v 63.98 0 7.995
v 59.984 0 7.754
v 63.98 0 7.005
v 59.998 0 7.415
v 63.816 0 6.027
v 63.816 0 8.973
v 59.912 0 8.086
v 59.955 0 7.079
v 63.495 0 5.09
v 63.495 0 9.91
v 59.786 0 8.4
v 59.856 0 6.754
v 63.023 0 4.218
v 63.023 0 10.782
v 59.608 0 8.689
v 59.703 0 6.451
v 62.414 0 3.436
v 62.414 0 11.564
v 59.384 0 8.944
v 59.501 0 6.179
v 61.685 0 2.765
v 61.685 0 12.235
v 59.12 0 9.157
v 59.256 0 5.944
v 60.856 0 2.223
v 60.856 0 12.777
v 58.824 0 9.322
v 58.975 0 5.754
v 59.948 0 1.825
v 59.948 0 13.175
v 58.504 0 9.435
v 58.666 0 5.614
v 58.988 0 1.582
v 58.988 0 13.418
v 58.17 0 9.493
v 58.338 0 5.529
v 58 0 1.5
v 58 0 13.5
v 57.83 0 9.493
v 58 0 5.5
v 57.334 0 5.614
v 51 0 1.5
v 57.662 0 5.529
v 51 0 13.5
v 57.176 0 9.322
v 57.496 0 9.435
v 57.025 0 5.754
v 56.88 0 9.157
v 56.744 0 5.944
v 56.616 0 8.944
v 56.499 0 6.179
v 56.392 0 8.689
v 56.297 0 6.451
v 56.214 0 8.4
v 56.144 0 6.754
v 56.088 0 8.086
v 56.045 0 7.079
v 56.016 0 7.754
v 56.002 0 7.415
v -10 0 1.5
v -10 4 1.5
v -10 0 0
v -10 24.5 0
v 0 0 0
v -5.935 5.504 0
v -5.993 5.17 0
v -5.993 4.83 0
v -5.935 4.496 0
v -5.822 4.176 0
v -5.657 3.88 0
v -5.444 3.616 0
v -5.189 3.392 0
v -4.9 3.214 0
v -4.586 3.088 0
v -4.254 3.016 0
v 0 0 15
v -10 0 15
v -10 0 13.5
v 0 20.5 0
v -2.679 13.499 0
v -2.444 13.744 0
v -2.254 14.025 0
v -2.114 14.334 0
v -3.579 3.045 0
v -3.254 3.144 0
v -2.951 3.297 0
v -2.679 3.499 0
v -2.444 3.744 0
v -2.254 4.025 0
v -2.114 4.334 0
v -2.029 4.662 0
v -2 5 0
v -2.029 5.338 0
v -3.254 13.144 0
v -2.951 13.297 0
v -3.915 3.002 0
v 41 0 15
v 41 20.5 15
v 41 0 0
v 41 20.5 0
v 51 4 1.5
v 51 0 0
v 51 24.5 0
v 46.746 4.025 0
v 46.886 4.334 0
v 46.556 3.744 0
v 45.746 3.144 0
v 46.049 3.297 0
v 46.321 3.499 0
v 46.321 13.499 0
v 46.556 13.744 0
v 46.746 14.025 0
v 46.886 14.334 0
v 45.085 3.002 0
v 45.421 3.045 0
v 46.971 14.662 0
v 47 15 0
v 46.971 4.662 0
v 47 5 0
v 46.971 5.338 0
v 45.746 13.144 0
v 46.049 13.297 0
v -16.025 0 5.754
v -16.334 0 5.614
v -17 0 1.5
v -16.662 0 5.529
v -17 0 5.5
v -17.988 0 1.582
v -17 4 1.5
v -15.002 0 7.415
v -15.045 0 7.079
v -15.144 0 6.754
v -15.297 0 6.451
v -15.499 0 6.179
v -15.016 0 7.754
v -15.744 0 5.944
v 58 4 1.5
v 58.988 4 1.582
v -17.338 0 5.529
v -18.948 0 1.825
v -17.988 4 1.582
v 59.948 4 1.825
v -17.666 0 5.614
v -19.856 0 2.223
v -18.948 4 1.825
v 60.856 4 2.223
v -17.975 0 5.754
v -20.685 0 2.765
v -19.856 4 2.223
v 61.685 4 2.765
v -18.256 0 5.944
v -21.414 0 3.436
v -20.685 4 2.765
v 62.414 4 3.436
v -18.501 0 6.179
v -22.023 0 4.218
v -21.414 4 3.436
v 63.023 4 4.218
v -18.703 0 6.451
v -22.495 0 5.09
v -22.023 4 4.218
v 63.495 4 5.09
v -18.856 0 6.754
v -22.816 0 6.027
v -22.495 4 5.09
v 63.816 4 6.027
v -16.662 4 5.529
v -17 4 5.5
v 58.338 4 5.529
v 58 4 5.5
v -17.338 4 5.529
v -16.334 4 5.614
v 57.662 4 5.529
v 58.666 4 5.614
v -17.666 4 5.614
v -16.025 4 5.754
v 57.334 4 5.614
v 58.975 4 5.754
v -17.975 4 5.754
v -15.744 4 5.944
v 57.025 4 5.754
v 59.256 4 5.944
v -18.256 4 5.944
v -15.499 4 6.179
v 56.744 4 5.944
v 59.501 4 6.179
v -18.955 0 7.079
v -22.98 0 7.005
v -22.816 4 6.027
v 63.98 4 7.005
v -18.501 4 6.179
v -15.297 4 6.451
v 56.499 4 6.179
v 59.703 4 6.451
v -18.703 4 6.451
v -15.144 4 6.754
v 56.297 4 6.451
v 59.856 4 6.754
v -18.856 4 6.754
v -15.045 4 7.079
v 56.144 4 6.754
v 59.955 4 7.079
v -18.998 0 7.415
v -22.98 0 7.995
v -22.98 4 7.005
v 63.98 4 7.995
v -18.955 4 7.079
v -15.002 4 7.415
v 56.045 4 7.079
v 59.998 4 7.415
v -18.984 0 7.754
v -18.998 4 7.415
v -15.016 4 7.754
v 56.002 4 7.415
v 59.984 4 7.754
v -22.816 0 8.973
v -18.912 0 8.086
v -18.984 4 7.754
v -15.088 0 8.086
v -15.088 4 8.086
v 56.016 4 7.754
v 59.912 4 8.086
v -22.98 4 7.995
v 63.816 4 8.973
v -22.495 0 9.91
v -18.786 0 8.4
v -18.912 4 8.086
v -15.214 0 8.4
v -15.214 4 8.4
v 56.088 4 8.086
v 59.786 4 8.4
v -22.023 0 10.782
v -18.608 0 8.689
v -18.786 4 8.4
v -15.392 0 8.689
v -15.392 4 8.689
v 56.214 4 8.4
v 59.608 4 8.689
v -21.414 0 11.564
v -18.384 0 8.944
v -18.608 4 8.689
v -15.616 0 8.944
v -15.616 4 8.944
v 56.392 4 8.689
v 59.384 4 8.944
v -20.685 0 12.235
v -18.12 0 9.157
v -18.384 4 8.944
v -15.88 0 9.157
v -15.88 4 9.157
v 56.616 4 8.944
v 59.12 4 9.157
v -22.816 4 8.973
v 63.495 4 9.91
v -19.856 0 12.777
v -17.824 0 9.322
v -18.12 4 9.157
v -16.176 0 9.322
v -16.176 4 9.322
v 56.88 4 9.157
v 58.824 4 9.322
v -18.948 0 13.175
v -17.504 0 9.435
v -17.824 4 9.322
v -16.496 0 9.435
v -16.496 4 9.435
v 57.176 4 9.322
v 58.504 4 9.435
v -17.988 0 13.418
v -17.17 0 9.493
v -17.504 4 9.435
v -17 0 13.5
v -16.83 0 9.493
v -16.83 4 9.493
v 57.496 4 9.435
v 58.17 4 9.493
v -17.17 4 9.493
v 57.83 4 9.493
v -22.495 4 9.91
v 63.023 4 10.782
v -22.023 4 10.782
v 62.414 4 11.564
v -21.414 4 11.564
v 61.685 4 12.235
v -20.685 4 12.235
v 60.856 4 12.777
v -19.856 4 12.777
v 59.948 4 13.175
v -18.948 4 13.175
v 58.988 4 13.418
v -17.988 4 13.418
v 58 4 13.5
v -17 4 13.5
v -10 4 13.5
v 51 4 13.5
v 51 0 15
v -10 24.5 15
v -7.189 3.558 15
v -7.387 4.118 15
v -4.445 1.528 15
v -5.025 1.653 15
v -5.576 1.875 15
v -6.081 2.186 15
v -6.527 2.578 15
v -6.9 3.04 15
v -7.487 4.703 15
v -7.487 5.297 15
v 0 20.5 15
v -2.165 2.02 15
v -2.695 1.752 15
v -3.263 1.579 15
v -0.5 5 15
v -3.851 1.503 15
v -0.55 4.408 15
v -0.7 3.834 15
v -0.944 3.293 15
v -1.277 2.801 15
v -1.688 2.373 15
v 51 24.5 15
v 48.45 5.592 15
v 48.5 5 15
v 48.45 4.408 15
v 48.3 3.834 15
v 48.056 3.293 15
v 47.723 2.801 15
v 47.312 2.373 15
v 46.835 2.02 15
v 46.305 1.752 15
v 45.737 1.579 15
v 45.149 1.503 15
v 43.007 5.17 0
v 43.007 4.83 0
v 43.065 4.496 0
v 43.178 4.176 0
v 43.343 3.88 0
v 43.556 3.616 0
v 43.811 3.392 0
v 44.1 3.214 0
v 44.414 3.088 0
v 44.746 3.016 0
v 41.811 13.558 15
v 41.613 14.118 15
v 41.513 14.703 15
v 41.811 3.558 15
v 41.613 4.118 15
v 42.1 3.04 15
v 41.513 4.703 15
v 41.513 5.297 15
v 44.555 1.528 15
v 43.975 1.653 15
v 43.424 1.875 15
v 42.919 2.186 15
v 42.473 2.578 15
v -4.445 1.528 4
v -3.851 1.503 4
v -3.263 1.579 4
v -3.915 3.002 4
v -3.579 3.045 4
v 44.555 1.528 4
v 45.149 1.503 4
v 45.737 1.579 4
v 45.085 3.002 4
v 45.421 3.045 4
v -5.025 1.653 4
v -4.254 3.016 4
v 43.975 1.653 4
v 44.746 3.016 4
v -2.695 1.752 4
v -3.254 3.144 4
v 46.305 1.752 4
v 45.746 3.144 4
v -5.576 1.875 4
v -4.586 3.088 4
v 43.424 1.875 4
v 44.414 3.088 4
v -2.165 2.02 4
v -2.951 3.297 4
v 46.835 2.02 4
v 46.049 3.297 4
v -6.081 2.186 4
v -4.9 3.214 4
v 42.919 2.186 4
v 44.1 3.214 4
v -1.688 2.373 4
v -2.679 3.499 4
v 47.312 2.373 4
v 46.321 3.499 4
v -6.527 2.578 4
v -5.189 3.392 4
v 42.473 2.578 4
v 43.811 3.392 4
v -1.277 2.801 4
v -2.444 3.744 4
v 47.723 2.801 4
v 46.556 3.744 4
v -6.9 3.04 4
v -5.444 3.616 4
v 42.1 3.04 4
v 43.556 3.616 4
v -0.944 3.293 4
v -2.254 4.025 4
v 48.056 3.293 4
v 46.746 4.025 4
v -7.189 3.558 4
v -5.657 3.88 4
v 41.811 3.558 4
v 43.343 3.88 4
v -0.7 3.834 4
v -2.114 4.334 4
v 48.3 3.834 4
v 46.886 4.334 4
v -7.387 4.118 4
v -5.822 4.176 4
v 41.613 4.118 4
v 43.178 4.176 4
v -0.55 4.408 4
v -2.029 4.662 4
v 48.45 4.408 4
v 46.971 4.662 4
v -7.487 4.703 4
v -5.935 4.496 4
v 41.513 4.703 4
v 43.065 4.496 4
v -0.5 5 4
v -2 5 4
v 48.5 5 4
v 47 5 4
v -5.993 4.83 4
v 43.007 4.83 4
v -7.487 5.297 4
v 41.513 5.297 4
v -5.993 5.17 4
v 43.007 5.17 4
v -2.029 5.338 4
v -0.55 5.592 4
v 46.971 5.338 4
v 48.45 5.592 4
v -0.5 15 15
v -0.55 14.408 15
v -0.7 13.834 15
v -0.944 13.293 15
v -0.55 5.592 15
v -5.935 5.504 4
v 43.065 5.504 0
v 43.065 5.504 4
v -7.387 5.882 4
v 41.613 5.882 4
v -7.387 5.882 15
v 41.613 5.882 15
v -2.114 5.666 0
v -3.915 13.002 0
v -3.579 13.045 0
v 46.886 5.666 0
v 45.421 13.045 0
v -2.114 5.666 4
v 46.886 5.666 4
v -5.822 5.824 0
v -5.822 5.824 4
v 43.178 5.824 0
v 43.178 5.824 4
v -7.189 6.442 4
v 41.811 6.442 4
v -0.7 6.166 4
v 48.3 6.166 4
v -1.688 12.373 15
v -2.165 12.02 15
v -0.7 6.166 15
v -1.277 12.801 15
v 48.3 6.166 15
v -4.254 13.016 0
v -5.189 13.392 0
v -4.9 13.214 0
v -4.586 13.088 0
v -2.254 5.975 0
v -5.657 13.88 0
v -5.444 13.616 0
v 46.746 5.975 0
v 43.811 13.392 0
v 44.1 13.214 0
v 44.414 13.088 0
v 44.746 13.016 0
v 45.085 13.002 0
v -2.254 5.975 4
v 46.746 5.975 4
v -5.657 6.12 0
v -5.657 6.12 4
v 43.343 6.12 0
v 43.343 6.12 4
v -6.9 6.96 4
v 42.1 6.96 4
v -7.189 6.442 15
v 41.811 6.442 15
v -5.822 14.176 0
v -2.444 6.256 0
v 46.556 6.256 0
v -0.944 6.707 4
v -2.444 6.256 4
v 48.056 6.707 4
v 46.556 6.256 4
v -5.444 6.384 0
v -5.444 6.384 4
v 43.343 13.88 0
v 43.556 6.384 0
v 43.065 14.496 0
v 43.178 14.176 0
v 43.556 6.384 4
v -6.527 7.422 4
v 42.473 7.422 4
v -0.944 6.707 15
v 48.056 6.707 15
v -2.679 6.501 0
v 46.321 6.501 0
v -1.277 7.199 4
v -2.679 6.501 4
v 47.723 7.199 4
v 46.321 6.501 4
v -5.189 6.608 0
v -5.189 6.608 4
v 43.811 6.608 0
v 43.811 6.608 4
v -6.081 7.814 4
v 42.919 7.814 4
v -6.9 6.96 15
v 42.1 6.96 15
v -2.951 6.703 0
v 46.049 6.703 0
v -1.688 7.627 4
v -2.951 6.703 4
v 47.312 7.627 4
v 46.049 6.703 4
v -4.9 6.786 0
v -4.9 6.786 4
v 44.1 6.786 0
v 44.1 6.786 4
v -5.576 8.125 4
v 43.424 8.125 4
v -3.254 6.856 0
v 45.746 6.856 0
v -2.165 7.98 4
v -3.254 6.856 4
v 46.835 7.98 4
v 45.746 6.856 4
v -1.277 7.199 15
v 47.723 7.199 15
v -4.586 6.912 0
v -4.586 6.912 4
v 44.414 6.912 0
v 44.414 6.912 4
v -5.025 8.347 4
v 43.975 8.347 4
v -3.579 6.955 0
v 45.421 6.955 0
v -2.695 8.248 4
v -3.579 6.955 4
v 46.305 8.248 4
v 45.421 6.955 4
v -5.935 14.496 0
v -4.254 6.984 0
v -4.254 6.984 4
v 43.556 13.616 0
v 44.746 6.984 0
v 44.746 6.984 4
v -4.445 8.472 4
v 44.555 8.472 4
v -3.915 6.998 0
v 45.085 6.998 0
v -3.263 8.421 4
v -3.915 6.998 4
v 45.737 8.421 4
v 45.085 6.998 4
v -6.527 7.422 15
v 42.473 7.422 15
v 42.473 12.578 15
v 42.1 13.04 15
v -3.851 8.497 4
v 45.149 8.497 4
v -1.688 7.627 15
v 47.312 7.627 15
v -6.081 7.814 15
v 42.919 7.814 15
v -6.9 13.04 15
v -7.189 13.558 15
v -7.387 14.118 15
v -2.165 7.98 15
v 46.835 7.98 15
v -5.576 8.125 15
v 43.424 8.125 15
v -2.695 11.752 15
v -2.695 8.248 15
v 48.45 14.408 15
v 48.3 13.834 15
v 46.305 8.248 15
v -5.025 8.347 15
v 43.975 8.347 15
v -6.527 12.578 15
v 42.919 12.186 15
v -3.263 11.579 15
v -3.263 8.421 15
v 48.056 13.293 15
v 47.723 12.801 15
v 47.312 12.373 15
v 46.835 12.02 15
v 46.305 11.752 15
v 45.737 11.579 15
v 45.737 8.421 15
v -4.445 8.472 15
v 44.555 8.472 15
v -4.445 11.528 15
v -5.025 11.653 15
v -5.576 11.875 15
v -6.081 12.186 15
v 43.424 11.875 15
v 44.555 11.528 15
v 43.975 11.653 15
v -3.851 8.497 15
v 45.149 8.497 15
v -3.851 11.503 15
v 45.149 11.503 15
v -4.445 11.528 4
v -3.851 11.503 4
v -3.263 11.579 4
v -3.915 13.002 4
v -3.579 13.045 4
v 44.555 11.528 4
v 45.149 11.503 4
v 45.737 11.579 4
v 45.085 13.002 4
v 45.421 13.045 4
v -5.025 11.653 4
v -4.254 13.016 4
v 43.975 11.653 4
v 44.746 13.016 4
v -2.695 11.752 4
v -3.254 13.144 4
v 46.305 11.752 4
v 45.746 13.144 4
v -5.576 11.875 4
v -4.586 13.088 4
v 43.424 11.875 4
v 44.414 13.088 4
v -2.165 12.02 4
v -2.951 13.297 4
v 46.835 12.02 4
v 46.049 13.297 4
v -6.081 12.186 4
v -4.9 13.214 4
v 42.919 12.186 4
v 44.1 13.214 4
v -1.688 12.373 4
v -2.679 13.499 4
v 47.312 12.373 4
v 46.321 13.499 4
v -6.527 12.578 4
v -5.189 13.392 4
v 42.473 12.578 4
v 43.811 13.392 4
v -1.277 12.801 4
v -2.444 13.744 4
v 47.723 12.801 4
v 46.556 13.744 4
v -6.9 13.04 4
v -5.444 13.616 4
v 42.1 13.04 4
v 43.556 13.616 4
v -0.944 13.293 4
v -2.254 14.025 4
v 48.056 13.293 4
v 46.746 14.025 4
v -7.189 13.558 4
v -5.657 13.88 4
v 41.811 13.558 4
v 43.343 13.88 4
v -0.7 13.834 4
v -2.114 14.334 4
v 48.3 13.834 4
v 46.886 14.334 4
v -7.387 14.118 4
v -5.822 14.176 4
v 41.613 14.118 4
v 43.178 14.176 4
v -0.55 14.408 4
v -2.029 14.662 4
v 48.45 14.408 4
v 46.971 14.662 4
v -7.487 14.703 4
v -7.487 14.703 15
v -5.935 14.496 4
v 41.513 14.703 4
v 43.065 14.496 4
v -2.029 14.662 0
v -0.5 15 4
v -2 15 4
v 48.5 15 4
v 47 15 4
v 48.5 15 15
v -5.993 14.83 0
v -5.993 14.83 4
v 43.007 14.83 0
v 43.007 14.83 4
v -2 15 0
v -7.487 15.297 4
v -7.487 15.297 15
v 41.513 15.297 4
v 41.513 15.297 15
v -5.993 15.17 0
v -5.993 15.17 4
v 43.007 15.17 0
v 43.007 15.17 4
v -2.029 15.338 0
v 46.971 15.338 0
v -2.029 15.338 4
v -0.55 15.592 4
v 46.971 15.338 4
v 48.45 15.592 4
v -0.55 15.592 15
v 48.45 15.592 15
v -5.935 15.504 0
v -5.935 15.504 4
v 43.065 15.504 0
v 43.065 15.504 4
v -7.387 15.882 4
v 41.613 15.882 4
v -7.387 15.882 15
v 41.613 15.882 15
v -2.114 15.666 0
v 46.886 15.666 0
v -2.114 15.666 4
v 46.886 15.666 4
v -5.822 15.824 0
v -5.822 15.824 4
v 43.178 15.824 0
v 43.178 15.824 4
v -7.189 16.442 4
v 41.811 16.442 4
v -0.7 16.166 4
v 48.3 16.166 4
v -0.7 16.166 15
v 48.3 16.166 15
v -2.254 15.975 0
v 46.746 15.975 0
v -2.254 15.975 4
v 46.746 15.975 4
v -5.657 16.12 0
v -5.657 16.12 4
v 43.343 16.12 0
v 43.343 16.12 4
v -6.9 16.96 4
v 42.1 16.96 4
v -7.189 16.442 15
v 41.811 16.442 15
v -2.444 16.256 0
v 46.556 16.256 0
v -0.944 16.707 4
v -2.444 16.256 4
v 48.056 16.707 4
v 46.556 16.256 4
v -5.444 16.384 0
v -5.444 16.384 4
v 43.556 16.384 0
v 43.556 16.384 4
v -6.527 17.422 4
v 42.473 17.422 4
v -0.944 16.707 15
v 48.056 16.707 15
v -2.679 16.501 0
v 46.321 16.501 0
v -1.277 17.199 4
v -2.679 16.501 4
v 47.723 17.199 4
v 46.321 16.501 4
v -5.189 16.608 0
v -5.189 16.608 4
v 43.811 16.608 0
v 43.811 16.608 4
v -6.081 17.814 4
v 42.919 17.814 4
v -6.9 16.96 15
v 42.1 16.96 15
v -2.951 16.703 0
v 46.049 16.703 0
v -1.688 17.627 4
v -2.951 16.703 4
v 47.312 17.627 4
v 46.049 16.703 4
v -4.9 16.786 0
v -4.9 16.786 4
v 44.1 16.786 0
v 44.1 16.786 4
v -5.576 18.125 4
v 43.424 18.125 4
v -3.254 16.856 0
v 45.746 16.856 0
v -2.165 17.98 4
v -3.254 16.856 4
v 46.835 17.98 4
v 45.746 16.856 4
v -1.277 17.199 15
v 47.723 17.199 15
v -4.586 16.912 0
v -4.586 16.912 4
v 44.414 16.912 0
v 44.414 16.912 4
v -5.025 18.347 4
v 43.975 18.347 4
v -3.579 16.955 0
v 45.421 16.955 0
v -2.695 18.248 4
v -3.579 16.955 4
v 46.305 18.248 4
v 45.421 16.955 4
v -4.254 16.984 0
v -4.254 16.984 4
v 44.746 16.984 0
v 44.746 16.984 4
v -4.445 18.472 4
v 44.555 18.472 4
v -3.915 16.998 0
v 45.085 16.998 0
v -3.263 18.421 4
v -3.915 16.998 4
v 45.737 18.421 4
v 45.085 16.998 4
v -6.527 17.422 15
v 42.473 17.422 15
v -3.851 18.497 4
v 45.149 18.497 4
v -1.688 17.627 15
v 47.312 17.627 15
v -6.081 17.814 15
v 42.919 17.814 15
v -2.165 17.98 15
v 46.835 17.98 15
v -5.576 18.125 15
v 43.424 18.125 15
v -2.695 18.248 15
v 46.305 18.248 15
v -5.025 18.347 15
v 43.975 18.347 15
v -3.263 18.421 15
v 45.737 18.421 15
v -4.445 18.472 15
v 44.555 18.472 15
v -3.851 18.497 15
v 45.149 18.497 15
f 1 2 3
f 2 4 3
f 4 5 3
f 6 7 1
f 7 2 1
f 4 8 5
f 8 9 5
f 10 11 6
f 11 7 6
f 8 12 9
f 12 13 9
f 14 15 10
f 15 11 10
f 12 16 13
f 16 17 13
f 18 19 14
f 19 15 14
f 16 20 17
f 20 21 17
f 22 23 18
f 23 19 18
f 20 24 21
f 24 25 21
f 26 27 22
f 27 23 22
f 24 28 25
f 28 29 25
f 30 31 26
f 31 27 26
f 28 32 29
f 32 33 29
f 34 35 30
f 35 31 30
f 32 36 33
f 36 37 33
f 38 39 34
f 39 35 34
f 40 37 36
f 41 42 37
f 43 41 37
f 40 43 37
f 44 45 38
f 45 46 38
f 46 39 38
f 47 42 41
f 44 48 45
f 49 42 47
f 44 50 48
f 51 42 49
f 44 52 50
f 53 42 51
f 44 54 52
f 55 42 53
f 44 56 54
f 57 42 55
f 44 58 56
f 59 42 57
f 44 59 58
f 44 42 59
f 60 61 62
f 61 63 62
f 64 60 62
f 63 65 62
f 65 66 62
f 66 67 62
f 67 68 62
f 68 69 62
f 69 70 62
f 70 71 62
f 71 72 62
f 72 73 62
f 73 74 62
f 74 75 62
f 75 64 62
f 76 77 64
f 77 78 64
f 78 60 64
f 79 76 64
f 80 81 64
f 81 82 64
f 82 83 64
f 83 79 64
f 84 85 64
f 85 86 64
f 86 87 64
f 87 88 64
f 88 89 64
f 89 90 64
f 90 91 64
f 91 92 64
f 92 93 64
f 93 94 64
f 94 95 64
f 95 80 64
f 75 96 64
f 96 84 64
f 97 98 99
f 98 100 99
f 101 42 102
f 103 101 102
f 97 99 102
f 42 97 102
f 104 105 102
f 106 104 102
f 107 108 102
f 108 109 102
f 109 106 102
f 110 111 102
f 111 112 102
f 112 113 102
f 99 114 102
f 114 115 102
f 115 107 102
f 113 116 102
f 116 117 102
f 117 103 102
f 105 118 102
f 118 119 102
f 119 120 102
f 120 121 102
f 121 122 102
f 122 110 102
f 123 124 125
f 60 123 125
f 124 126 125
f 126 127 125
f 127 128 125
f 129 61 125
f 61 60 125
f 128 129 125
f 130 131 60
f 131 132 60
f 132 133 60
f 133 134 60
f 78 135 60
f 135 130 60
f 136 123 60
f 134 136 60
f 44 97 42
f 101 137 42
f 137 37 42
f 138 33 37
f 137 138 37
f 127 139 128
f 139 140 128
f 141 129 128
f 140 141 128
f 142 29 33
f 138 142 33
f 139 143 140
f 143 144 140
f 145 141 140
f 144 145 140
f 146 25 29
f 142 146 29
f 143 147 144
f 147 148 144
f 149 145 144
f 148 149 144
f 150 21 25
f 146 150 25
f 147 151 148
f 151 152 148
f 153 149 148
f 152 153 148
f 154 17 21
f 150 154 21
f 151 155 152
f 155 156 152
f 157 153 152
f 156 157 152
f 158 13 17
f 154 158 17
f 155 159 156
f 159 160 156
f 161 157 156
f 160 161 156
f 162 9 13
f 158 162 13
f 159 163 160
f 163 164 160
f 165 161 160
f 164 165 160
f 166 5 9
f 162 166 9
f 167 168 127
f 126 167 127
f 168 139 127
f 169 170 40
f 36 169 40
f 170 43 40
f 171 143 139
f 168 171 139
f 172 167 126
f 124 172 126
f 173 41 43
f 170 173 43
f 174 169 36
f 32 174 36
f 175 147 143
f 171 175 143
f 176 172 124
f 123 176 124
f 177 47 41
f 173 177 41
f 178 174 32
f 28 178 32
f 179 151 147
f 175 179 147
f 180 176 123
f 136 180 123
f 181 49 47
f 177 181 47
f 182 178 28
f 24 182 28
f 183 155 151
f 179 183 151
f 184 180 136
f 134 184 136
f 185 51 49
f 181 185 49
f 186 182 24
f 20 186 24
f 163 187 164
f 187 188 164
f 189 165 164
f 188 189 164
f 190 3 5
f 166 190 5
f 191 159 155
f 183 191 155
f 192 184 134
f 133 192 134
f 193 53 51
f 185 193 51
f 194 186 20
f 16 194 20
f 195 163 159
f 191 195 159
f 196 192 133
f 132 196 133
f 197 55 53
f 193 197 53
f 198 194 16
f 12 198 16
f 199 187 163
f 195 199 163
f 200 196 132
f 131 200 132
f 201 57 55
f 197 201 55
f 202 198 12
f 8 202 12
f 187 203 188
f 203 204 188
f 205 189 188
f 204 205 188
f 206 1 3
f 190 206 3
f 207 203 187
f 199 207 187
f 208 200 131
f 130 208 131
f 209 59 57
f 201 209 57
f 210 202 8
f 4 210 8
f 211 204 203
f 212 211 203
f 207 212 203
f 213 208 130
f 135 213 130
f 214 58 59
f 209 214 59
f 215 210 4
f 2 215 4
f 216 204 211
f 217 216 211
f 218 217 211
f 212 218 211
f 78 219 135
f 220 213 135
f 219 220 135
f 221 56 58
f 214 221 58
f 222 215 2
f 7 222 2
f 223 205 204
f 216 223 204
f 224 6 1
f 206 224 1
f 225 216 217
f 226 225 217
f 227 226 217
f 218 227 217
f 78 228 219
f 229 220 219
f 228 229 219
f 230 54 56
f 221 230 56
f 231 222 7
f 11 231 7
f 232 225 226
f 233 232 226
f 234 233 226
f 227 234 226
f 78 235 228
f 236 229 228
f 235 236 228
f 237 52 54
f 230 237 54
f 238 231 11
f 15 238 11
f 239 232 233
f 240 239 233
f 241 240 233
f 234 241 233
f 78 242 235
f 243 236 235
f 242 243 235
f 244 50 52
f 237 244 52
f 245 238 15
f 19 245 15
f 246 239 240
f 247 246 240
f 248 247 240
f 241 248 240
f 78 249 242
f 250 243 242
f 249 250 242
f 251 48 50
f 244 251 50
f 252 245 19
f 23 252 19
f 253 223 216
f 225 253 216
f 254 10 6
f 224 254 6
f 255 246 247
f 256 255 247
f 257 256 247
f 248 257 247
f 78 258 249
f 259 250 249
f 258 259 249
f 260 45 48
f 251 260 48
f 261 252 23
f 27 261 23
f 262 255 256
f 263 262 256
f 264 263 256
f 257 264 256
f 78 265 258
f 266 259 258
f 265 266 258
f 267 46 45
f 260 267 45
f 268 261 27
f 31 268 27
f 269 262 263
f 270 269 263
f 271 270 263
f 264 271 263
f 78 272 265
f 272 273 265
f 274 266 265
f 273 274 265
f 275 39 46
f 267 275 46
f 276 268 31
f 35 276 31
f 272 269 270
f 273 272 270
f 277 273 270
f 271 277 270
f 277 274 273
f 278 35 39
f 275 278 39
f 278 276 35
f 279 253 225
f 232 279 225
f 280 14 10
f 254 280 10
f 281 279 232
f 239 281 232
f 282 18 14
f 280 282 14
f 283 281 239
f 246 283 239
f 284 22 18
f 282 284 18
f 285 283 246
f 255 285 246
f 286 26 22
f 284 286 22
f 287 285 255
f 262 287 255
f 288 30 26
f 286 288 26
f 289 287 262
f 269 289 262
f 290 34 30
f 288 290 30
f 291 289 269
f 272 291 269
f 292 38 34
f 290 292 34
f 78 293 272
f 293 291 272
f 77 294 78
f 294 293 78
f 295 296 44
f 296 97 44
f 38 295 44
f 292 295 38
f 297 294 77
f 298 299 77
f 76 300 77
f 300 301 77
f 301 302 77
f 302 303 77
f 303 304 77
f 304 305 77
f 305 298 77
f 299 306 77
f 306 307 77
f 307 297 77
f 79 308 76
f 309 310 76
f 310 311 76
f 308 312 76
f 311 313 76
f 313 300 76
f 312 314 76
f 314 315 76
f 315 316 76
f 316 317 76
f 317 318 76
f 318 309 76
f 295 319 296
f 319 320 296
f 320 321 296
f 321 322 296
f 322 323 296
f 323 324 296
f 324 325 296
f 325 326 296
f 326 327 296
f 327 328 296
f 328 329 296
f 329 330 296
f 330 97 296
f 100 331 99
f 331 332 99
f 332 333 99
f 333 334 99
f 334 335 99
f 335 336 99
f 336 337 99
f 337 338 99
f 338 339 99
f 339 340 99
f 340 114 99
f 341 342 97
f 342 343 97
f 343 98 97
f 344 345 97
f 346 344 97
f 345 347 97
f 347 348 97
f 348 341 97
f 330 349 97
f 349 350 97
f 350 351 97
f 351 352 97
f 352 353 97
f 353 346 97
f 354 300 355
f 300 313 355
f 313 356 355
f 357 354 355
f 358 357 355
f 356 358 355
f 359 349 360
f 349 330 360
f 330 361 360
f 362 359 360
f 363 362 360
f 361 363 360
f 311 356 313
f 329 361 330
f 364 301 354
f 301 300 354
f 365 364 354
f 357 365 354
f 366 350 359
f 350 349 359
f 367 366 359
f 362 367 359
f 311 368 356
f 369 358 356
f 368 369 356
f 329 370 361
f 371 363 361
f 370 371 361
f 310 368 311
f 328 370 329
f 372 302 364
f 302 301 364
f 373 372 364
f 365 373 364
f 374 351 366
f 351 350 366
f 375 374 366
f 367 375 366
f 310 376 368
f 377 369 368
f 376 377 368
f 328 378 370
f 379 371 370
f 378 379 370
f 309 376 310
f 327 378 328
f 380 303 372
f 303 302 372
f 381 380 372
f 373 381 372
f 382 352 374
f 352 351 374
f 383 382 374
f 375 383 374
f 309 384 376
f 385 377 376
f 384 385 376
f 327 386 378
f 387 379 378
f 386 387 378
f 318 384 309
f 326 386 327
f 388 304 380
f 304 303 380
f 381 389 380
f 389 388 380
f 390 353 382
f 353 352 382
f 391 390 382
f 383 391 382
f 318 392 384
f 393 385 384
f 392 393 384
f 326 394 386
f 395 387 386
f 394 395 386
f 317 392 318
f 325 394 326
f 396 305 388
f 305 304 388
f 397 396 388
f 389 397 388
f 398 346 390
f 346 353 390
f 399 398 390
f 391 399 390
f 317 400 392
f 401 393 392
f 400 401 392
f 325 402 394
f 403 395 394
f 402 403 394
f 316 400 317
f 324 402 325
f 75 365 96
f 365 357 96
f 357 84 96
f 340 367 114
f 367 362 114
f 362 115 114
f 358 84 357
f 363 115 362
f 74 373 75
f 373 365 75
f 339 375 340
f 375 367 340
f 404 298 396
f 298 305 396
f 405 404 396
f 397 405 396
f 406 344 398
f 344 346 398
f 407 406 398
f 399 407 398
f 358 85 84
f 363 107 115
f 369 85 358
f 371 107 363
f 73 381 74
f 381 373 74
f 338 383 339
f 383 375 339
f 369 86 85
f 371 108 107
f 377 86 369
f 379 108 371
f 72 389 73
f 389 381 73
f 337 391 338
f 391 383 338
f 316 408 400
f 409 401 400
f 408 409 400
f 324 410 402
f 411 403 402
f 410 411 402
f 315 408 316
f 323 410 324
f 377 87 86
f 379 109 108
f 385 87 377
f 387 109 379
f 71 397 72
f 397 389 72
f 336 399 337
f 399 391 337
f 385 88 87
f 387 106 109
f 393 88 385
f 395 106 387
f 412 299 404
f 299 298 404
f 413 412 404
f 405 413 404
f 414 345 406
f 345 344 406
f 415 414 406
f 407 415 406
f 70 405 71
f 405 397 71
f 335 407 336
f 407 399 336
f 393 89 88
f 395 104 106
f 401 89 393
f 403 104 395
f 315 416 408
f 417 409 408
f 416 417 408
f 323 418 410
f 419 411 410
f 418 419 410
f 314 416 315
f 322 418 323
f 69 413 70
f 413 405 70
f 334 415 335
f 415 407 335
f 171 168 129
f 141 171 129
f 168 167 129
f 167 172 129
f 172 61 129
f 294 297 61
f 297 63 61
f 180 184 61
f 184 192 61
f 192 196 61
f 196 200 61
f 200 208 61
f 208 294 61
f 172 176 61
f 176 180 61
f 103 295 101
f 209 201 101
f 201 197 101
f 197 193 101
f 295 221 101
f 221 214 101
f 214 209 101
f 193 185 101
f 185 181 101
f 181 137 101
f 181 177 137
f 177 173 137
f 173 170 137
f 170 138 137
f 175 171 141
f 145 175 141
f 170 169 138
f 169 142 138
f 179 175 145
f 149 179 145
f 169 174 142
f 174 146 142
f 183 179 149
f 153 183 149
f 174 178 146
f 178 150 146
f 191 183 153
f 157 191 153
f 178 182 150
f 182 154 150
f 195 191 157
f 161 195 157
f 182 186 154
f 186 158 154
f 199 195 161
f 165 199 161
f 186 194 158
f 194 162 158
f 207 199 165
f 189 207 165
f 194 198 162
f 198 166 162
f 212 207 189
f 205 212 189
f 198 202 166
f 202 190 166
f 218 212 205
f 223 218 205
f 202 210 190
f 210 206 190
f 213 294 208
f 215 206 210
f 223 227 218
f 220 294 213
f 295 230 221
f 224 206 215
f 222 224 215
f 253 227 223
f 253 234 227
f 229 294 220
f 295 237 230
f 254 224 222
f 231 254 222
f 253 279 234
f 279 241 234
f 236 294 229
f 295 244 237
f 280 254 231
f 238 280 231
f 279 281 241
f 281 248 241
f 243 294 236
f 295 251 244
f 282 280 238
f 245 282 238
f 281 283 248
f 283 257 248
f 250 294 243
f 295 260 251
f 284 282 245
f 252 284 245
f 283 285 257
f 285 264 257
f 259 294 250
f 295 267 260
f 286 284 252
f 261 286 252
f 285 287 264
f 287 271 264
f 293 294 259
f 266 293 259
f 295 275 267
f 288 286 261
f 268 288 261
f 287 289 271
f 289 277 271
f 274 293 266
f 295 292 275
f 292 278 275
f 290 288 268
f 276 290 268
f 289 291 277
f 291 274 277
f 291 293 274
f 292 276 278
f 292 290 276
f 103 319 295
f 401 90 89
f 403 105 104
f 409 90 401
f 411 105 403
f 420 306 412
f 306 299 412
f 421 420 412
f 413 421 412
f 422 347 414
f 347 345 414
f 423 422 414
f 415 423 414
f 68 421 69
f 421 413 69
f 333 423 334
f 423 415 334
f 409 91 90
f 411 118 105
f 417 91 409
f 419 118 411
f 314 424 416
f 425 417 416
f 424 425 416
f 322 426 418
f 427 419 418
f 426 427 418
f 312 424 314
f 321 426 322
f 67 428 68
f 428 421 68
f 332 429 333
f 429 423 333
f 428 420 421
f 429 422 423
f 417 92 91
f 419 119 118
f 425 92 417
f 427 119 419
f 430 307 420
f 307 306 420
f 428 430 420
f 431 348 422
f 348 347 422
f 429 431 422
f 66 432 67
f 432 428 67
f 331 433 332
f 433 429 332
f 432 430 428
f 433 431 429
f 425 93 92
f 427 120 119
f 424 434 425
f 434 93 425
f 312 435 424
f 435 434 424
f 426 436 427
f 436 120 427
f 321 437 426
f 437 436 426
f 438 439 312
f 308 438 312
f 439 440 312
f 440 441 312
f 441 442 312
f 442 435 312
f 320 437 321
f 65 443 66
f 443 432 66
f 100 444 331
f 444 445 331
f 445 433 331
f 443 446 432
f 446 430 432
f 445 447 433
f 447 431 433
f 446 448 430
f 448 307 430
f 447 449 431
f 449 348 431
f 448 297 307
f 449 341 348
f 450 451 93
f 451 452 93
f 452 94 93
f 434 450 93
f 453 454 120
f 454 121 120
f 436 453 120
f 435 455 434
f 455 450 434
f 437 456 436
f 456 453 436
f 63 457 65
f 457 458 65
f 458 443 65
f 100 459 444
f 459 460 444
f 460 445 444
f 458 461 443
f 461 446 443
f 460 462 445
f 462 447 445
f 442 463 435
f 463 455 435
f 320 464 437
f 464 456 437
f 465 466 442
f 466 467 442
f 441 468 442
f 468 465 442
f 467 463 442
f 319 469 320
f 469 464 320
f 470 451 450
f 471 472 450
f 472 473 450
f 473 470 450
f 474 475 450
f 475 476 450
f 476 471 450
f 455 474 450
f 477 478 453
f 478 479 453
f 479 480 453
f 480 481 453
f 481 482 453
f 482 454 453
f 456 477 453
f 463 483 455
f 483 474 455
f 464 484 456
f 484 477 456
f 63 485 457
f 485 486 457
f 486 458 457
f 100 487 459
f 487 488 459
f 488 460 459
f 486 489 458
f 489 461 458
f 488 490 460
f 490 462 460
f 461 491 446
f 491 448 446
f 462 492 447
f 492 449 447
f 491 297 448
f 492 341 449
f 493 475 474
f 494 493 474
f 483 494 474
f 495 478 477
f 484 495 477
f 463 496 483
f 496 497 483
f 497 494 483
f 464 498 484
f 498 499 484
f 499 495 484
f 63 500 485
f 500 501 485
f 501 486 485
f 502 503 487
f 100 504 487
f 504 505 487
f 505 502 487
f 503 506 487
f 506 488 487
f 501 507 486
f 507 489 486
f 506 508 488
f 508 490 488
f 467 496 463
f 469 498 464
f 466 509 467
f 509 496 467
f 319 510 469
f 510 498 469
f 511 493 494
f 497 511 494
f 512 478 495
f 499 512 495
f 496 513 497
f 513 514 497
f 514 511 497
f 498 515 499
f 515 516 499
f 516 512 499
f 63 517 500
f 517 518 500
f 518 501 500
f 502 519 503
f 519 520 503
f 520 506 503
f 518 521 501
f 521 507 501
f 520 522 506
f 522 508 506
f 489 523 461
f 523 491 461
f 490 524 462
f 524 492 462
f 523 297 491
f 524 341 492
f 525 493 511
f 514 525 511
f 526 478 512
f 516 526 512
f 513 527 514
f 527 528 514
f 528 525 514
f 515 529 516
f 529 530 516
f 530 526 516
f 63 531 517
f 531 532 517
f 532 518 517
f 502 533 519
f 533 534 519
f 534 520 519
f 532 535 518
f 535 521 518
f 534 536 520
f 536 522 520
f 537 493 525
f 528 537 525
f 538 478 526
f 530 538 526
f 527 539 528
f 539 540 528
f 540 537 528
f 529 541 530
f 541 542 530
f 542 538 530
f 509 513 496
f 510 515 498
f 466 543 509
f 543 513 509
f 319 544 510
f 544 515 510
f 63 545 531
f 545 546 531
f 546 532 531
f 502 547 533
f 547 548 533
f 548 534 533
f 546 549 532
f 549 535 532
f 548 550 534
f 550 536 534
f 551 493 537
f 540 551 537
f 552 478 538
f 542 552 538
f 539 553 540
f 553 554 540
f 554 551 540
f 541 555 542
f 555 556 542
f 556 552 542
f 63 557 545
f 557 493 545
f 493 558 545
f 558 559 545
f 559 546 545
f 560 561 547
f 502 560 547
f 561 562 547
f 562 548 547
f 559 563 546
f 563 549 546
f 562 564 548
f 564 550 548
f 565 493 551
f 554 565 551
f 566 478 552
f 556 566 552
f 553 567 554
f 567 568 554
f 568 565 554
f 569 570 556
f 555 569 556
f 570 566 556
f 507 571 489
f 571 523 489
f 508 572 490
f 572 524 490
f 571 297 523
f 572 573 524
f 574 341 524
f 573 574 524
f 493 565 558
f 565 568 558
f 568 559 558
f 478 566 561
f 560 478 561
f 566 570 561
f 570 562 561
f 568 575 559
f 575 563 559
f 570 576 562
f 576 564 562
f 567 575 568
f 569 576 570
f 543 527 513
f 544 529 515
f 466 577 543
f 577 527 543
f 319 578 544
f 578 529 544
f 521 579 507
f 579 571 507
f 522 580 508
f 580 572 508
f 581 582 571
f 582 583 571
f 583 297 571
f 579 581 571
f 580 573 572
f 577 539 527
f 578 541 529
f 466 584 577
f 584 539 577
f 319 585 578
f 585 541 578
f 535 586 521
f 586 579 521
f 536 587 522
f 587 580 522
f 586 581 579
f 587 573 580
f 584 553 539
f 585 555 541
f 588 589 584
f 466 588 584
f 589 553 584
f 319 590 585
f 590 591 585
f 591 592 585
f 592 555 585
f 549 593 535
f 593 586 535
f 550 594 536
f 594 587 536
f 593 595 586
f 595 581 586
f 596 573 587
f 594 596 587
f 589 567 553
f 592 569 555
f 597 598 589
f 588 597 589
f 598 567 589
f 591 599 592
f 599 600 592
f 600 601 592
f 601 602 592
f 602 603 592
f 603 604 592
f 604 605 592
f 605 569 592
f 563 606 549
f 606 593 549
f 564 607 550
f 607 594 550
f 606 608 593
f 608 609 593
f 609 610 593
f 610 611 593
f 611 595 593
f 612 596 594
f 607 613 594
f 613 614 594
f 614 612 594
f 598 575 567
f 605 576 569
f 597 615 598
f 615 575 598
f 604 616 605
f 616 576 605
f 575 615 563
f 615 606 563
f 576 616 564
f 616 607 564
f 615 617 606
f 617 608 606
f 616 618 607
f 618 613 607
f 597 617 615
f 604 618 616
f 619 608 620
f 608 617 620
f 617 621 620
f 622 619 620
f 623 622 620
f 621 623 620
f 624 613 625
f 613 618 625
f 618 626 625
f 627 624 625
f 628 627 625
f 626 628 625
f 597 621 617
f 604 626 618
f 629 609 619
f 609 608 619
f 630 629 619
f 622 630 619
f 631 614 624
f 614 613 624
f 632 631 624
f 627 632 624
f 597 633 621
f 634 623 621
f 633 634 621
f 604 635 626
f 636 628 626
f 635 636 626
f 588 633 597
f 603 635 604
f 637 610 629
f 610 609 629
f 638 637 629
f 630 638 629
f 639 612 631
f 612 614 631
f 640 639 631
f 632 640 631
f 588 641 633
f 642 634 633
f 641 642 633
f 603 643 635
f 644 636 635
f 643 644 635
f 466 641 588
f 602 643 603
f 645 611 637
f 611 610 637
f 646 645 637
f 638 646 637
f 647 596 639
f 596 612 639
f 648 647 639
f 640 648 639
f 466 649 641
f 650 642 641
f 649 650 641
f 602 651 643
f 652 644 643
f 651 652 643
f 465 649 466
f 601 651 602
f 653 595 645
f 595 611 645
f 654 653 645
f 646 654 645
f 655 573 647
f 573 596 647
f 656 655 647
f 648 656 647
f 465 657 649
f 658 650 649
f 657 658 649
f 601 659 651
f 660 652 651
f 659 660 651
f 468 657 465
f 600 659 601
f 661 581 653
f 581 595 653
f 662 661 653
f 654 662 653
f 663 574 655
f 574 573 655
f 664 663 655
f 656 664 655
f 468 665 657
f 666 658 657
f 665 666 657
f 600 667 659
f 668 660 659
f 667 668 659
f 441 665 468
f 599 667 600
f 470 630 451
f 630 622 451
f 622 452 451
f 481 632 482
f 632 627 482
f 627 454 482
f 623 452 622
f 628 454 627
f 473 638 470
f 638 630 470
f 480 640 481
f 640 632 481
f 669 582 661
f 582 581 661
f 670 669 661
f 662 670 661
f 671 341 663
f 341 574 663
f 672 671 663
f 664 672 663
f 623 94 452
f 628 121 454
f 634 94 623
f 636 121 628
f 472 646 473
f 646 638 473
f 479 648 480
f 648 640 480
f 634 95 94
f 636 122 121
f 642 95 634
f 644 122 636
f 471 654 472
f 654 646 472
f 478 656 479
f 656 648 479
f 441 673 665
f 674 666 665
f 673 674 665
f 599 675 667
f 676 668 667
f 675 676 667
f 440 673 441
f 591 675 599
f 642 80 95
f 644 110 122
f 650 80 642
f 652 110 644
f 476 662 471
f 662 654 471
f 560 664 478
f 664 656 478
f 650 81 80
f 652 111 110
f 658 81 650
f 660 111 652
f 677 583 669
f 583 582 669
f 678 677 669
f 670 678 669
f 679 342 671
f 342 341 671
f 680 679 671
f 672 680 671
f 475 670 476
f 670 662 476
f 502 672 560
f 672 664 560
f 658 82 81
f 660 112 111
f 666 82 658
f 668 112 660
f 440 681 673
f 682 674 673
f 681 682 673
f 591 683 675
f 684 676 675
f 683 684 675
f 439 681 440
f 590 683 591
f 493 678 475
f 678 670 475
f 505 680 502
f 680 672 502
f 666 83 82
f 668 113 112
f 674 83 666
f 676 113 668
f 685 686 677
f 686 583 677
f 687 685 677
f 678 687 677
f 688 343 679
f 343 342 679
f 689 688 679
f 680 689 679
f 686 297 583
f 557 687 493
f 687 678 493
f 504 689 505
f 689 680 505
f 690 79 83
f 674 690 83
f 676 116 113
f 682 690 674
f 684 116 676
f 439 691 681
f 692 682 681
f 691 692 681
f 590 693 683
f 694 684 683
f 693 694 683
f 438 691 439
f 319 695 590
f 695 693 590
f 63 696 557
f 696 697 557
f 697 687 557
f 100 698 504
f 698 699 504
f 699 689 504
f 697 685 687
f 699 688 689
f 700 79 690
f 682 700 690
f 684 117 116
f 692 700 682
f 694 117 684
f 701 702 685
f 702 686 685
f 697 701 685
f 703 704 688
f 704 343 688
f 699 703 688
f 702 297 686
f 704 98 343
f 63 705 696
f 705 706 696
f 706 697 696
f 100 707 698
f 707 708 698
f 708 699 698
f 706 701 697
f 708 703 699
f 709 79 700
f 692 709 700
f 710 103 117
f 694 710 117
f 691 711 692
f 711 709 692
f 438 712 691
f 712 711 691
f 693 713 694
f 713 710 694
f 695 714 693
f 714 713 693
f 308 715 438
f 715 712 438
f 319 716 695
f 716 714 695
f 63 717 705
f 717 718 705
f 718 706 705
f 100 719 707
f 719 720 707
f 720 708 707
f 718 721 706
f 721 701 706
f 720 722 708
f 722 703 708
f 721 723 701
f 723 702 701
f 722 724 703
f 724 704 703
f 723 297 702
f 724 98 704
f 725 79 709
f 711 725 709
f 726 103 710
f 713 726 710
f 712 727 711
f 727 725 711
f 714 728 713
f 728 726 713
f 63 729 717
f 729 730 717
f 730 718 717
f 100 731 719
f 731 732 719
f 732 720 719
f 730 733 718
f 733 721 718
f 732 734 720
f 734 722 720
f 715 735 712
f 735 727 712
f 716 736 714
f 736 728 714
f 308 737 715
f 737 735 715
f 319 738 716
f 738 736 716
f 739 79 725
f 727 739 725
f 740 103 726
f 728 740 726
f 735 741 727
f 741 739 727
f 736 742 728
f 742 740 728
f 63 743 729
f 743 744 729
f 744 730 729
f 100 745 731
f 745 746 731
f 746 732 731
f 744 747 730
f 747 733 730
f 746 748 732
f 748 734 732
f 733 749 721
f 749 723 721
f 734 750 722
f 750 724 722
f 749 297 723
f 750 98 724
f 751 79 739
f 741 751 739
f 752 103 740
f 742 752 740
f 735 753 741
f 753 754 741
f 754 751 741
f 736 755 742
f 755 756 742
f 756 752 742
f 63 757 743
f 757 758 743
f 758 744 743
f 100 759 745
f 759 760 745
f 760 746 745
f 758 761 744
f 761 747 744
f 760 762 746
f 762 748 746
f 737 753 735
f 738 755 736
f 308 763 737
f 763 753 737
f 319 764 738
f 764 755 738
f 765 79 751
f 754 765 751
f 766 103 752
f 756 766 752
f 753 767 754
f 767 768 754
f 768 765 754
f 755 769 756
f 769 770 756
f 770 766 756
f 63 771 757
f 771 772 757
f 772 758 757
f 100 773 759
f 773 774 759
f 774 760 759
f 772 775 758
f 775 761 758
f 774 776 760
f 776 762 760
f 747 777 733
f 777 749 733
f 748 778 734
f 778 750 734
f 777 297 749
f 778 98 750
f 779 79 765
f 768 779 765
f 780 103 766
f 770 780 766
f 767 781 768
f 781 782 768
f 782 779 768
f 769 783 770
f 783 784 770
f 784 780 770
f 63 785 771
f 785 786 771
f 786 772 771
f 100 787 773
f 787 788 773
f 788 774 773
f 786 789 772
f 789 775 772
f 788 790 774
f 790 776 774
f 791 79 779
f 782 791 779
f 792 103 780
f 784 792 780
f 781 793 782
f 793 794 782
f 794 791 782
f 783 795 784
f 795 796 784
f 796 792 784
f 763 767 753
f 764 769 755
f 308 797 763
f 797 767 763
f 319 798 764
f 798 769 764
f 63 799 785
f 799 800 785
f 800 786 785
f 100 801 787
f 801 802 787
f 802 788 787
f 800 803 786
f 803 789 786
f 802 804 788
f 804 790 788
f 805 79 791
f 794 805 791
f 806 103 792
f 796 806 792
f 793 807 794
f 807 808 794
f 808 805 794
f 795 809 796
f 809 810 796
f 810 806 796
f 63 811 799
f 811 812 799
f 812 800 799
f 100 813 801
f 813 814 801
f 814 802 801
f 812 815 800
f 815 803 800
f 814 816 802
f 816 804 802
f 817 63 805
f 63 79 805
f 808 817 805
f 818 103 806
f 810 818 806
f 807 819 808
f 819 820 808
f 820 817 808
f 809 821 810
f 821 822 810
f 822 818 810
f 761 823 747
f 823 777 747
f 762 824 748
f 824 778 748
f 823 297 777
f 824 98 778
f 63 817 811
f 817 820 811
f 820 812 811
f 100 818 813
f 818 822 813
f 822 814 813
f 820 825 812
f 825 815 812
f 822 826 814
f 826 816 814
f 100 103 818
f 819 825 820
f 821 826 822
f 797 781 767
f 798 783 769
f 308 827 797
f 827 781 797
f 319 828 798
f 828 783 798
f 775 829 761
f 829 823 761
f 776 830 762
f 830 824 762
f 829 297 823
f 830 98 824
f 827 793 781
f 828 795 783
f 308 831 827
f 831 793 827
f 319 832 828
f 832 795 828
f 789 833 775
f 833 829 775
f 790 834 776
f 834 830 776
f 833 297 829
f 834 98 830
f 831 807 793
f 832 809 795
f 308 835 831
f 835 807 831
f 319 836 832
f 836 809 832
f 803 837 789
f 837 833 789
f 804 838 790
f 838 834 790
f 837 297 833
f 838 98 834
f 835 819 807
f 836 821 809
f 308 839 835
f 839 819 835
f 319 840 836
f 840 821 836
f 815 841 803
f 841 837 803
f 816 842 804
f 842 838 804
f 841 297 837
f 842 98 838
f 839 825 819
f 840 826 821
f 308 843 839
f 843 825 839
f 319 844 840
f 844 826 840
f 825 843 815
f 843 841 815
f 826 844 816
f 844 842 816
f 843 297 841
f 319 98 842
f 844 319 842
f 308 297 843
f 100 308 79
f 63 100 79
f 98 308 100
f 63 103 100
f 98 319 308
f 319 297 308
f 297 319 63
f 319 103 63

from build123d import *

# Parameters (mm, degrees)
BOSS_EXTRUDE1_DEPTH = 15
SKETCH2_R           = 3.5
CUT_EXTRUDE1_DEPTH  = 11
CUT_EXTRUDE2_REACH  = 59.639
SKETCH3_R           = 2
SKETCH4_R           = 2
BOSS_EXTRUDE5_DEPTH = 4


with BuildPart() as part:
    # Sketch1 → Boss-Extrude1 (new body)
    with BuildSketch(Plane.XY):
        Polygon((0, 0), (0, 20.5), (41, 20.5), (41, 0), (51, 0), (51, 24.5), (-10, 24.5), (-10, 0), align=None)
    extrude(amount=BOSS_EXTRUDE1_DEPTH)

    # Sketch2 → Cut-Extrude1 (cut)
    with BuildSketch(Plane.XY.offset(15)):
        with Locations((45, 5)):
            Circle(SKETCH2_R)
        with Locations((45, 15)):
            Circle(SKETCH2_R)
        with Locations((-4, 5)):
            Circle(SKETCH2_R)
        with Locations((-4, 15)):
            Circle(SKETCH2_R)
    extrude(amount=-CUT_EXTRUDE1_DEPTH, mode=Mode.SUBTRACT)

    # Sketch3 → Cut-Extrude2 (cut, up to next)
    with BuildSketch(Plane.XY.offset(4), mode=Mode.PRIVATE) as cut_extrude2_sk1:
        with Locations((-4, 15)):
            Circle(SKETCH3_R)
    cut_extrude2_tool1 = extrude(cut_extrude2_sk1.sketch, amount=-CUT_EXTRUDE2_REACH, mode=Mode.PRIVATE) & part.part
    # Sketch3 → Cut-Extrude2 (cut, up to next)
    with BuildSketch(Plane.XY.offset(4), mode=Mode.PRIVATE) as cut_extrude2_sk2:
        with Locations((-4, 5)):
            Circle(SKETCH3_R)
    cut_extrude2_tool2 = extrude(cut_extrude2_sk2.sketch, amount=-CUT_EXTRUDE2_REACH, mode=Mode.PRIVATE) & part.part
    # Sketch3 → Cut-Extrude2 (cut, up to next)
    with BuildSketch(Plane.XY.offset(4), mode=Mode.PRIVATE) as cut_extrude2_sk3:
        with Locations((45, 15)):
            Circle(SKETCH3_R)
    cut_extrude2_tool3 = extrude(cut_extrude2_sk3.sketch, amount=-CUT_EXTRUDE2_REACH, mode=Mode.PRIVATE) & part.part
    # Sketch3 → Cut-Extrude2 (cut, up to next)
    with BuildSketch(Plane.XY.offset(4), mode=Mode.PRIVATE) as cut_extrude2_sk4:
        with Locations((45, 5)):
            Circle(SKETCH3_R)
    cut_extrude2_tool4 = extrude(cut_extrude2_sk4.sketch, amount=-CUT_EXTRUDE2_REACH, mode=Mode.PRIVATE) & part.part
    add(cut_extrude2_tool1.solids().sort_by_distance((-4, 15, 4))[0], mode=Mode.SUBTRACT)
    add(cut_extrude2_tool2.solids().sort_by_distance((-4, 5, 4))[0], mode=Mode.SUBTRACT)
    add(cut_extrude2_tool3.solids().sort_by_distance((45, 15, 4))[0], mode=Mode.SUBTRACT)
    add(cut_extrude2_tool4.solids().sort_by_distance((45, 5, 4))[0], mode=Mode.SUBTRACT)

    # Sketch4 → Boss-Extrude5 (add)
    # profile 1 of 2: a face of its own
    with BuildSketch(Plane.XZ):
        with BuildLine():
            Line((51, 1.5), (58, 1.5))
            ThreePointArc((58, 1.5), (64, 7.5), (58, 13.5))
            Line((58, 13.5), (51, 13.5))
            Line((51, 13.5), (51, 1.5))
        make_face()
        with Locations(Location((58, 7.5, 0), (0, 0, 270))):
            Circle(SKETCH4_R, mode=Mode.SUBTRACT)
    # profile 2 of 2: a face of its own
    with BuildSketch(Plane.XZ):
        with BuildLine():
            ThreePointArc((-17, 13.5), (-23, 7.5), (-17, 1.5))
            Line((-17, 1.5), (-10, 1.5))
            Line((-10, 1.5), (-10, 13.5))
            Line((-10, 13.5), (-17, 13.5))
        make_face()
        with Locations(Location((-17, 7.5, 0), (0, 0, 270))):
            Circle(SKETCH4_R, mode=Mode.SUBTRACT)
    extrude(amount=-BOSS_EXTRUDE5_DEPTH)


solid = part.part
